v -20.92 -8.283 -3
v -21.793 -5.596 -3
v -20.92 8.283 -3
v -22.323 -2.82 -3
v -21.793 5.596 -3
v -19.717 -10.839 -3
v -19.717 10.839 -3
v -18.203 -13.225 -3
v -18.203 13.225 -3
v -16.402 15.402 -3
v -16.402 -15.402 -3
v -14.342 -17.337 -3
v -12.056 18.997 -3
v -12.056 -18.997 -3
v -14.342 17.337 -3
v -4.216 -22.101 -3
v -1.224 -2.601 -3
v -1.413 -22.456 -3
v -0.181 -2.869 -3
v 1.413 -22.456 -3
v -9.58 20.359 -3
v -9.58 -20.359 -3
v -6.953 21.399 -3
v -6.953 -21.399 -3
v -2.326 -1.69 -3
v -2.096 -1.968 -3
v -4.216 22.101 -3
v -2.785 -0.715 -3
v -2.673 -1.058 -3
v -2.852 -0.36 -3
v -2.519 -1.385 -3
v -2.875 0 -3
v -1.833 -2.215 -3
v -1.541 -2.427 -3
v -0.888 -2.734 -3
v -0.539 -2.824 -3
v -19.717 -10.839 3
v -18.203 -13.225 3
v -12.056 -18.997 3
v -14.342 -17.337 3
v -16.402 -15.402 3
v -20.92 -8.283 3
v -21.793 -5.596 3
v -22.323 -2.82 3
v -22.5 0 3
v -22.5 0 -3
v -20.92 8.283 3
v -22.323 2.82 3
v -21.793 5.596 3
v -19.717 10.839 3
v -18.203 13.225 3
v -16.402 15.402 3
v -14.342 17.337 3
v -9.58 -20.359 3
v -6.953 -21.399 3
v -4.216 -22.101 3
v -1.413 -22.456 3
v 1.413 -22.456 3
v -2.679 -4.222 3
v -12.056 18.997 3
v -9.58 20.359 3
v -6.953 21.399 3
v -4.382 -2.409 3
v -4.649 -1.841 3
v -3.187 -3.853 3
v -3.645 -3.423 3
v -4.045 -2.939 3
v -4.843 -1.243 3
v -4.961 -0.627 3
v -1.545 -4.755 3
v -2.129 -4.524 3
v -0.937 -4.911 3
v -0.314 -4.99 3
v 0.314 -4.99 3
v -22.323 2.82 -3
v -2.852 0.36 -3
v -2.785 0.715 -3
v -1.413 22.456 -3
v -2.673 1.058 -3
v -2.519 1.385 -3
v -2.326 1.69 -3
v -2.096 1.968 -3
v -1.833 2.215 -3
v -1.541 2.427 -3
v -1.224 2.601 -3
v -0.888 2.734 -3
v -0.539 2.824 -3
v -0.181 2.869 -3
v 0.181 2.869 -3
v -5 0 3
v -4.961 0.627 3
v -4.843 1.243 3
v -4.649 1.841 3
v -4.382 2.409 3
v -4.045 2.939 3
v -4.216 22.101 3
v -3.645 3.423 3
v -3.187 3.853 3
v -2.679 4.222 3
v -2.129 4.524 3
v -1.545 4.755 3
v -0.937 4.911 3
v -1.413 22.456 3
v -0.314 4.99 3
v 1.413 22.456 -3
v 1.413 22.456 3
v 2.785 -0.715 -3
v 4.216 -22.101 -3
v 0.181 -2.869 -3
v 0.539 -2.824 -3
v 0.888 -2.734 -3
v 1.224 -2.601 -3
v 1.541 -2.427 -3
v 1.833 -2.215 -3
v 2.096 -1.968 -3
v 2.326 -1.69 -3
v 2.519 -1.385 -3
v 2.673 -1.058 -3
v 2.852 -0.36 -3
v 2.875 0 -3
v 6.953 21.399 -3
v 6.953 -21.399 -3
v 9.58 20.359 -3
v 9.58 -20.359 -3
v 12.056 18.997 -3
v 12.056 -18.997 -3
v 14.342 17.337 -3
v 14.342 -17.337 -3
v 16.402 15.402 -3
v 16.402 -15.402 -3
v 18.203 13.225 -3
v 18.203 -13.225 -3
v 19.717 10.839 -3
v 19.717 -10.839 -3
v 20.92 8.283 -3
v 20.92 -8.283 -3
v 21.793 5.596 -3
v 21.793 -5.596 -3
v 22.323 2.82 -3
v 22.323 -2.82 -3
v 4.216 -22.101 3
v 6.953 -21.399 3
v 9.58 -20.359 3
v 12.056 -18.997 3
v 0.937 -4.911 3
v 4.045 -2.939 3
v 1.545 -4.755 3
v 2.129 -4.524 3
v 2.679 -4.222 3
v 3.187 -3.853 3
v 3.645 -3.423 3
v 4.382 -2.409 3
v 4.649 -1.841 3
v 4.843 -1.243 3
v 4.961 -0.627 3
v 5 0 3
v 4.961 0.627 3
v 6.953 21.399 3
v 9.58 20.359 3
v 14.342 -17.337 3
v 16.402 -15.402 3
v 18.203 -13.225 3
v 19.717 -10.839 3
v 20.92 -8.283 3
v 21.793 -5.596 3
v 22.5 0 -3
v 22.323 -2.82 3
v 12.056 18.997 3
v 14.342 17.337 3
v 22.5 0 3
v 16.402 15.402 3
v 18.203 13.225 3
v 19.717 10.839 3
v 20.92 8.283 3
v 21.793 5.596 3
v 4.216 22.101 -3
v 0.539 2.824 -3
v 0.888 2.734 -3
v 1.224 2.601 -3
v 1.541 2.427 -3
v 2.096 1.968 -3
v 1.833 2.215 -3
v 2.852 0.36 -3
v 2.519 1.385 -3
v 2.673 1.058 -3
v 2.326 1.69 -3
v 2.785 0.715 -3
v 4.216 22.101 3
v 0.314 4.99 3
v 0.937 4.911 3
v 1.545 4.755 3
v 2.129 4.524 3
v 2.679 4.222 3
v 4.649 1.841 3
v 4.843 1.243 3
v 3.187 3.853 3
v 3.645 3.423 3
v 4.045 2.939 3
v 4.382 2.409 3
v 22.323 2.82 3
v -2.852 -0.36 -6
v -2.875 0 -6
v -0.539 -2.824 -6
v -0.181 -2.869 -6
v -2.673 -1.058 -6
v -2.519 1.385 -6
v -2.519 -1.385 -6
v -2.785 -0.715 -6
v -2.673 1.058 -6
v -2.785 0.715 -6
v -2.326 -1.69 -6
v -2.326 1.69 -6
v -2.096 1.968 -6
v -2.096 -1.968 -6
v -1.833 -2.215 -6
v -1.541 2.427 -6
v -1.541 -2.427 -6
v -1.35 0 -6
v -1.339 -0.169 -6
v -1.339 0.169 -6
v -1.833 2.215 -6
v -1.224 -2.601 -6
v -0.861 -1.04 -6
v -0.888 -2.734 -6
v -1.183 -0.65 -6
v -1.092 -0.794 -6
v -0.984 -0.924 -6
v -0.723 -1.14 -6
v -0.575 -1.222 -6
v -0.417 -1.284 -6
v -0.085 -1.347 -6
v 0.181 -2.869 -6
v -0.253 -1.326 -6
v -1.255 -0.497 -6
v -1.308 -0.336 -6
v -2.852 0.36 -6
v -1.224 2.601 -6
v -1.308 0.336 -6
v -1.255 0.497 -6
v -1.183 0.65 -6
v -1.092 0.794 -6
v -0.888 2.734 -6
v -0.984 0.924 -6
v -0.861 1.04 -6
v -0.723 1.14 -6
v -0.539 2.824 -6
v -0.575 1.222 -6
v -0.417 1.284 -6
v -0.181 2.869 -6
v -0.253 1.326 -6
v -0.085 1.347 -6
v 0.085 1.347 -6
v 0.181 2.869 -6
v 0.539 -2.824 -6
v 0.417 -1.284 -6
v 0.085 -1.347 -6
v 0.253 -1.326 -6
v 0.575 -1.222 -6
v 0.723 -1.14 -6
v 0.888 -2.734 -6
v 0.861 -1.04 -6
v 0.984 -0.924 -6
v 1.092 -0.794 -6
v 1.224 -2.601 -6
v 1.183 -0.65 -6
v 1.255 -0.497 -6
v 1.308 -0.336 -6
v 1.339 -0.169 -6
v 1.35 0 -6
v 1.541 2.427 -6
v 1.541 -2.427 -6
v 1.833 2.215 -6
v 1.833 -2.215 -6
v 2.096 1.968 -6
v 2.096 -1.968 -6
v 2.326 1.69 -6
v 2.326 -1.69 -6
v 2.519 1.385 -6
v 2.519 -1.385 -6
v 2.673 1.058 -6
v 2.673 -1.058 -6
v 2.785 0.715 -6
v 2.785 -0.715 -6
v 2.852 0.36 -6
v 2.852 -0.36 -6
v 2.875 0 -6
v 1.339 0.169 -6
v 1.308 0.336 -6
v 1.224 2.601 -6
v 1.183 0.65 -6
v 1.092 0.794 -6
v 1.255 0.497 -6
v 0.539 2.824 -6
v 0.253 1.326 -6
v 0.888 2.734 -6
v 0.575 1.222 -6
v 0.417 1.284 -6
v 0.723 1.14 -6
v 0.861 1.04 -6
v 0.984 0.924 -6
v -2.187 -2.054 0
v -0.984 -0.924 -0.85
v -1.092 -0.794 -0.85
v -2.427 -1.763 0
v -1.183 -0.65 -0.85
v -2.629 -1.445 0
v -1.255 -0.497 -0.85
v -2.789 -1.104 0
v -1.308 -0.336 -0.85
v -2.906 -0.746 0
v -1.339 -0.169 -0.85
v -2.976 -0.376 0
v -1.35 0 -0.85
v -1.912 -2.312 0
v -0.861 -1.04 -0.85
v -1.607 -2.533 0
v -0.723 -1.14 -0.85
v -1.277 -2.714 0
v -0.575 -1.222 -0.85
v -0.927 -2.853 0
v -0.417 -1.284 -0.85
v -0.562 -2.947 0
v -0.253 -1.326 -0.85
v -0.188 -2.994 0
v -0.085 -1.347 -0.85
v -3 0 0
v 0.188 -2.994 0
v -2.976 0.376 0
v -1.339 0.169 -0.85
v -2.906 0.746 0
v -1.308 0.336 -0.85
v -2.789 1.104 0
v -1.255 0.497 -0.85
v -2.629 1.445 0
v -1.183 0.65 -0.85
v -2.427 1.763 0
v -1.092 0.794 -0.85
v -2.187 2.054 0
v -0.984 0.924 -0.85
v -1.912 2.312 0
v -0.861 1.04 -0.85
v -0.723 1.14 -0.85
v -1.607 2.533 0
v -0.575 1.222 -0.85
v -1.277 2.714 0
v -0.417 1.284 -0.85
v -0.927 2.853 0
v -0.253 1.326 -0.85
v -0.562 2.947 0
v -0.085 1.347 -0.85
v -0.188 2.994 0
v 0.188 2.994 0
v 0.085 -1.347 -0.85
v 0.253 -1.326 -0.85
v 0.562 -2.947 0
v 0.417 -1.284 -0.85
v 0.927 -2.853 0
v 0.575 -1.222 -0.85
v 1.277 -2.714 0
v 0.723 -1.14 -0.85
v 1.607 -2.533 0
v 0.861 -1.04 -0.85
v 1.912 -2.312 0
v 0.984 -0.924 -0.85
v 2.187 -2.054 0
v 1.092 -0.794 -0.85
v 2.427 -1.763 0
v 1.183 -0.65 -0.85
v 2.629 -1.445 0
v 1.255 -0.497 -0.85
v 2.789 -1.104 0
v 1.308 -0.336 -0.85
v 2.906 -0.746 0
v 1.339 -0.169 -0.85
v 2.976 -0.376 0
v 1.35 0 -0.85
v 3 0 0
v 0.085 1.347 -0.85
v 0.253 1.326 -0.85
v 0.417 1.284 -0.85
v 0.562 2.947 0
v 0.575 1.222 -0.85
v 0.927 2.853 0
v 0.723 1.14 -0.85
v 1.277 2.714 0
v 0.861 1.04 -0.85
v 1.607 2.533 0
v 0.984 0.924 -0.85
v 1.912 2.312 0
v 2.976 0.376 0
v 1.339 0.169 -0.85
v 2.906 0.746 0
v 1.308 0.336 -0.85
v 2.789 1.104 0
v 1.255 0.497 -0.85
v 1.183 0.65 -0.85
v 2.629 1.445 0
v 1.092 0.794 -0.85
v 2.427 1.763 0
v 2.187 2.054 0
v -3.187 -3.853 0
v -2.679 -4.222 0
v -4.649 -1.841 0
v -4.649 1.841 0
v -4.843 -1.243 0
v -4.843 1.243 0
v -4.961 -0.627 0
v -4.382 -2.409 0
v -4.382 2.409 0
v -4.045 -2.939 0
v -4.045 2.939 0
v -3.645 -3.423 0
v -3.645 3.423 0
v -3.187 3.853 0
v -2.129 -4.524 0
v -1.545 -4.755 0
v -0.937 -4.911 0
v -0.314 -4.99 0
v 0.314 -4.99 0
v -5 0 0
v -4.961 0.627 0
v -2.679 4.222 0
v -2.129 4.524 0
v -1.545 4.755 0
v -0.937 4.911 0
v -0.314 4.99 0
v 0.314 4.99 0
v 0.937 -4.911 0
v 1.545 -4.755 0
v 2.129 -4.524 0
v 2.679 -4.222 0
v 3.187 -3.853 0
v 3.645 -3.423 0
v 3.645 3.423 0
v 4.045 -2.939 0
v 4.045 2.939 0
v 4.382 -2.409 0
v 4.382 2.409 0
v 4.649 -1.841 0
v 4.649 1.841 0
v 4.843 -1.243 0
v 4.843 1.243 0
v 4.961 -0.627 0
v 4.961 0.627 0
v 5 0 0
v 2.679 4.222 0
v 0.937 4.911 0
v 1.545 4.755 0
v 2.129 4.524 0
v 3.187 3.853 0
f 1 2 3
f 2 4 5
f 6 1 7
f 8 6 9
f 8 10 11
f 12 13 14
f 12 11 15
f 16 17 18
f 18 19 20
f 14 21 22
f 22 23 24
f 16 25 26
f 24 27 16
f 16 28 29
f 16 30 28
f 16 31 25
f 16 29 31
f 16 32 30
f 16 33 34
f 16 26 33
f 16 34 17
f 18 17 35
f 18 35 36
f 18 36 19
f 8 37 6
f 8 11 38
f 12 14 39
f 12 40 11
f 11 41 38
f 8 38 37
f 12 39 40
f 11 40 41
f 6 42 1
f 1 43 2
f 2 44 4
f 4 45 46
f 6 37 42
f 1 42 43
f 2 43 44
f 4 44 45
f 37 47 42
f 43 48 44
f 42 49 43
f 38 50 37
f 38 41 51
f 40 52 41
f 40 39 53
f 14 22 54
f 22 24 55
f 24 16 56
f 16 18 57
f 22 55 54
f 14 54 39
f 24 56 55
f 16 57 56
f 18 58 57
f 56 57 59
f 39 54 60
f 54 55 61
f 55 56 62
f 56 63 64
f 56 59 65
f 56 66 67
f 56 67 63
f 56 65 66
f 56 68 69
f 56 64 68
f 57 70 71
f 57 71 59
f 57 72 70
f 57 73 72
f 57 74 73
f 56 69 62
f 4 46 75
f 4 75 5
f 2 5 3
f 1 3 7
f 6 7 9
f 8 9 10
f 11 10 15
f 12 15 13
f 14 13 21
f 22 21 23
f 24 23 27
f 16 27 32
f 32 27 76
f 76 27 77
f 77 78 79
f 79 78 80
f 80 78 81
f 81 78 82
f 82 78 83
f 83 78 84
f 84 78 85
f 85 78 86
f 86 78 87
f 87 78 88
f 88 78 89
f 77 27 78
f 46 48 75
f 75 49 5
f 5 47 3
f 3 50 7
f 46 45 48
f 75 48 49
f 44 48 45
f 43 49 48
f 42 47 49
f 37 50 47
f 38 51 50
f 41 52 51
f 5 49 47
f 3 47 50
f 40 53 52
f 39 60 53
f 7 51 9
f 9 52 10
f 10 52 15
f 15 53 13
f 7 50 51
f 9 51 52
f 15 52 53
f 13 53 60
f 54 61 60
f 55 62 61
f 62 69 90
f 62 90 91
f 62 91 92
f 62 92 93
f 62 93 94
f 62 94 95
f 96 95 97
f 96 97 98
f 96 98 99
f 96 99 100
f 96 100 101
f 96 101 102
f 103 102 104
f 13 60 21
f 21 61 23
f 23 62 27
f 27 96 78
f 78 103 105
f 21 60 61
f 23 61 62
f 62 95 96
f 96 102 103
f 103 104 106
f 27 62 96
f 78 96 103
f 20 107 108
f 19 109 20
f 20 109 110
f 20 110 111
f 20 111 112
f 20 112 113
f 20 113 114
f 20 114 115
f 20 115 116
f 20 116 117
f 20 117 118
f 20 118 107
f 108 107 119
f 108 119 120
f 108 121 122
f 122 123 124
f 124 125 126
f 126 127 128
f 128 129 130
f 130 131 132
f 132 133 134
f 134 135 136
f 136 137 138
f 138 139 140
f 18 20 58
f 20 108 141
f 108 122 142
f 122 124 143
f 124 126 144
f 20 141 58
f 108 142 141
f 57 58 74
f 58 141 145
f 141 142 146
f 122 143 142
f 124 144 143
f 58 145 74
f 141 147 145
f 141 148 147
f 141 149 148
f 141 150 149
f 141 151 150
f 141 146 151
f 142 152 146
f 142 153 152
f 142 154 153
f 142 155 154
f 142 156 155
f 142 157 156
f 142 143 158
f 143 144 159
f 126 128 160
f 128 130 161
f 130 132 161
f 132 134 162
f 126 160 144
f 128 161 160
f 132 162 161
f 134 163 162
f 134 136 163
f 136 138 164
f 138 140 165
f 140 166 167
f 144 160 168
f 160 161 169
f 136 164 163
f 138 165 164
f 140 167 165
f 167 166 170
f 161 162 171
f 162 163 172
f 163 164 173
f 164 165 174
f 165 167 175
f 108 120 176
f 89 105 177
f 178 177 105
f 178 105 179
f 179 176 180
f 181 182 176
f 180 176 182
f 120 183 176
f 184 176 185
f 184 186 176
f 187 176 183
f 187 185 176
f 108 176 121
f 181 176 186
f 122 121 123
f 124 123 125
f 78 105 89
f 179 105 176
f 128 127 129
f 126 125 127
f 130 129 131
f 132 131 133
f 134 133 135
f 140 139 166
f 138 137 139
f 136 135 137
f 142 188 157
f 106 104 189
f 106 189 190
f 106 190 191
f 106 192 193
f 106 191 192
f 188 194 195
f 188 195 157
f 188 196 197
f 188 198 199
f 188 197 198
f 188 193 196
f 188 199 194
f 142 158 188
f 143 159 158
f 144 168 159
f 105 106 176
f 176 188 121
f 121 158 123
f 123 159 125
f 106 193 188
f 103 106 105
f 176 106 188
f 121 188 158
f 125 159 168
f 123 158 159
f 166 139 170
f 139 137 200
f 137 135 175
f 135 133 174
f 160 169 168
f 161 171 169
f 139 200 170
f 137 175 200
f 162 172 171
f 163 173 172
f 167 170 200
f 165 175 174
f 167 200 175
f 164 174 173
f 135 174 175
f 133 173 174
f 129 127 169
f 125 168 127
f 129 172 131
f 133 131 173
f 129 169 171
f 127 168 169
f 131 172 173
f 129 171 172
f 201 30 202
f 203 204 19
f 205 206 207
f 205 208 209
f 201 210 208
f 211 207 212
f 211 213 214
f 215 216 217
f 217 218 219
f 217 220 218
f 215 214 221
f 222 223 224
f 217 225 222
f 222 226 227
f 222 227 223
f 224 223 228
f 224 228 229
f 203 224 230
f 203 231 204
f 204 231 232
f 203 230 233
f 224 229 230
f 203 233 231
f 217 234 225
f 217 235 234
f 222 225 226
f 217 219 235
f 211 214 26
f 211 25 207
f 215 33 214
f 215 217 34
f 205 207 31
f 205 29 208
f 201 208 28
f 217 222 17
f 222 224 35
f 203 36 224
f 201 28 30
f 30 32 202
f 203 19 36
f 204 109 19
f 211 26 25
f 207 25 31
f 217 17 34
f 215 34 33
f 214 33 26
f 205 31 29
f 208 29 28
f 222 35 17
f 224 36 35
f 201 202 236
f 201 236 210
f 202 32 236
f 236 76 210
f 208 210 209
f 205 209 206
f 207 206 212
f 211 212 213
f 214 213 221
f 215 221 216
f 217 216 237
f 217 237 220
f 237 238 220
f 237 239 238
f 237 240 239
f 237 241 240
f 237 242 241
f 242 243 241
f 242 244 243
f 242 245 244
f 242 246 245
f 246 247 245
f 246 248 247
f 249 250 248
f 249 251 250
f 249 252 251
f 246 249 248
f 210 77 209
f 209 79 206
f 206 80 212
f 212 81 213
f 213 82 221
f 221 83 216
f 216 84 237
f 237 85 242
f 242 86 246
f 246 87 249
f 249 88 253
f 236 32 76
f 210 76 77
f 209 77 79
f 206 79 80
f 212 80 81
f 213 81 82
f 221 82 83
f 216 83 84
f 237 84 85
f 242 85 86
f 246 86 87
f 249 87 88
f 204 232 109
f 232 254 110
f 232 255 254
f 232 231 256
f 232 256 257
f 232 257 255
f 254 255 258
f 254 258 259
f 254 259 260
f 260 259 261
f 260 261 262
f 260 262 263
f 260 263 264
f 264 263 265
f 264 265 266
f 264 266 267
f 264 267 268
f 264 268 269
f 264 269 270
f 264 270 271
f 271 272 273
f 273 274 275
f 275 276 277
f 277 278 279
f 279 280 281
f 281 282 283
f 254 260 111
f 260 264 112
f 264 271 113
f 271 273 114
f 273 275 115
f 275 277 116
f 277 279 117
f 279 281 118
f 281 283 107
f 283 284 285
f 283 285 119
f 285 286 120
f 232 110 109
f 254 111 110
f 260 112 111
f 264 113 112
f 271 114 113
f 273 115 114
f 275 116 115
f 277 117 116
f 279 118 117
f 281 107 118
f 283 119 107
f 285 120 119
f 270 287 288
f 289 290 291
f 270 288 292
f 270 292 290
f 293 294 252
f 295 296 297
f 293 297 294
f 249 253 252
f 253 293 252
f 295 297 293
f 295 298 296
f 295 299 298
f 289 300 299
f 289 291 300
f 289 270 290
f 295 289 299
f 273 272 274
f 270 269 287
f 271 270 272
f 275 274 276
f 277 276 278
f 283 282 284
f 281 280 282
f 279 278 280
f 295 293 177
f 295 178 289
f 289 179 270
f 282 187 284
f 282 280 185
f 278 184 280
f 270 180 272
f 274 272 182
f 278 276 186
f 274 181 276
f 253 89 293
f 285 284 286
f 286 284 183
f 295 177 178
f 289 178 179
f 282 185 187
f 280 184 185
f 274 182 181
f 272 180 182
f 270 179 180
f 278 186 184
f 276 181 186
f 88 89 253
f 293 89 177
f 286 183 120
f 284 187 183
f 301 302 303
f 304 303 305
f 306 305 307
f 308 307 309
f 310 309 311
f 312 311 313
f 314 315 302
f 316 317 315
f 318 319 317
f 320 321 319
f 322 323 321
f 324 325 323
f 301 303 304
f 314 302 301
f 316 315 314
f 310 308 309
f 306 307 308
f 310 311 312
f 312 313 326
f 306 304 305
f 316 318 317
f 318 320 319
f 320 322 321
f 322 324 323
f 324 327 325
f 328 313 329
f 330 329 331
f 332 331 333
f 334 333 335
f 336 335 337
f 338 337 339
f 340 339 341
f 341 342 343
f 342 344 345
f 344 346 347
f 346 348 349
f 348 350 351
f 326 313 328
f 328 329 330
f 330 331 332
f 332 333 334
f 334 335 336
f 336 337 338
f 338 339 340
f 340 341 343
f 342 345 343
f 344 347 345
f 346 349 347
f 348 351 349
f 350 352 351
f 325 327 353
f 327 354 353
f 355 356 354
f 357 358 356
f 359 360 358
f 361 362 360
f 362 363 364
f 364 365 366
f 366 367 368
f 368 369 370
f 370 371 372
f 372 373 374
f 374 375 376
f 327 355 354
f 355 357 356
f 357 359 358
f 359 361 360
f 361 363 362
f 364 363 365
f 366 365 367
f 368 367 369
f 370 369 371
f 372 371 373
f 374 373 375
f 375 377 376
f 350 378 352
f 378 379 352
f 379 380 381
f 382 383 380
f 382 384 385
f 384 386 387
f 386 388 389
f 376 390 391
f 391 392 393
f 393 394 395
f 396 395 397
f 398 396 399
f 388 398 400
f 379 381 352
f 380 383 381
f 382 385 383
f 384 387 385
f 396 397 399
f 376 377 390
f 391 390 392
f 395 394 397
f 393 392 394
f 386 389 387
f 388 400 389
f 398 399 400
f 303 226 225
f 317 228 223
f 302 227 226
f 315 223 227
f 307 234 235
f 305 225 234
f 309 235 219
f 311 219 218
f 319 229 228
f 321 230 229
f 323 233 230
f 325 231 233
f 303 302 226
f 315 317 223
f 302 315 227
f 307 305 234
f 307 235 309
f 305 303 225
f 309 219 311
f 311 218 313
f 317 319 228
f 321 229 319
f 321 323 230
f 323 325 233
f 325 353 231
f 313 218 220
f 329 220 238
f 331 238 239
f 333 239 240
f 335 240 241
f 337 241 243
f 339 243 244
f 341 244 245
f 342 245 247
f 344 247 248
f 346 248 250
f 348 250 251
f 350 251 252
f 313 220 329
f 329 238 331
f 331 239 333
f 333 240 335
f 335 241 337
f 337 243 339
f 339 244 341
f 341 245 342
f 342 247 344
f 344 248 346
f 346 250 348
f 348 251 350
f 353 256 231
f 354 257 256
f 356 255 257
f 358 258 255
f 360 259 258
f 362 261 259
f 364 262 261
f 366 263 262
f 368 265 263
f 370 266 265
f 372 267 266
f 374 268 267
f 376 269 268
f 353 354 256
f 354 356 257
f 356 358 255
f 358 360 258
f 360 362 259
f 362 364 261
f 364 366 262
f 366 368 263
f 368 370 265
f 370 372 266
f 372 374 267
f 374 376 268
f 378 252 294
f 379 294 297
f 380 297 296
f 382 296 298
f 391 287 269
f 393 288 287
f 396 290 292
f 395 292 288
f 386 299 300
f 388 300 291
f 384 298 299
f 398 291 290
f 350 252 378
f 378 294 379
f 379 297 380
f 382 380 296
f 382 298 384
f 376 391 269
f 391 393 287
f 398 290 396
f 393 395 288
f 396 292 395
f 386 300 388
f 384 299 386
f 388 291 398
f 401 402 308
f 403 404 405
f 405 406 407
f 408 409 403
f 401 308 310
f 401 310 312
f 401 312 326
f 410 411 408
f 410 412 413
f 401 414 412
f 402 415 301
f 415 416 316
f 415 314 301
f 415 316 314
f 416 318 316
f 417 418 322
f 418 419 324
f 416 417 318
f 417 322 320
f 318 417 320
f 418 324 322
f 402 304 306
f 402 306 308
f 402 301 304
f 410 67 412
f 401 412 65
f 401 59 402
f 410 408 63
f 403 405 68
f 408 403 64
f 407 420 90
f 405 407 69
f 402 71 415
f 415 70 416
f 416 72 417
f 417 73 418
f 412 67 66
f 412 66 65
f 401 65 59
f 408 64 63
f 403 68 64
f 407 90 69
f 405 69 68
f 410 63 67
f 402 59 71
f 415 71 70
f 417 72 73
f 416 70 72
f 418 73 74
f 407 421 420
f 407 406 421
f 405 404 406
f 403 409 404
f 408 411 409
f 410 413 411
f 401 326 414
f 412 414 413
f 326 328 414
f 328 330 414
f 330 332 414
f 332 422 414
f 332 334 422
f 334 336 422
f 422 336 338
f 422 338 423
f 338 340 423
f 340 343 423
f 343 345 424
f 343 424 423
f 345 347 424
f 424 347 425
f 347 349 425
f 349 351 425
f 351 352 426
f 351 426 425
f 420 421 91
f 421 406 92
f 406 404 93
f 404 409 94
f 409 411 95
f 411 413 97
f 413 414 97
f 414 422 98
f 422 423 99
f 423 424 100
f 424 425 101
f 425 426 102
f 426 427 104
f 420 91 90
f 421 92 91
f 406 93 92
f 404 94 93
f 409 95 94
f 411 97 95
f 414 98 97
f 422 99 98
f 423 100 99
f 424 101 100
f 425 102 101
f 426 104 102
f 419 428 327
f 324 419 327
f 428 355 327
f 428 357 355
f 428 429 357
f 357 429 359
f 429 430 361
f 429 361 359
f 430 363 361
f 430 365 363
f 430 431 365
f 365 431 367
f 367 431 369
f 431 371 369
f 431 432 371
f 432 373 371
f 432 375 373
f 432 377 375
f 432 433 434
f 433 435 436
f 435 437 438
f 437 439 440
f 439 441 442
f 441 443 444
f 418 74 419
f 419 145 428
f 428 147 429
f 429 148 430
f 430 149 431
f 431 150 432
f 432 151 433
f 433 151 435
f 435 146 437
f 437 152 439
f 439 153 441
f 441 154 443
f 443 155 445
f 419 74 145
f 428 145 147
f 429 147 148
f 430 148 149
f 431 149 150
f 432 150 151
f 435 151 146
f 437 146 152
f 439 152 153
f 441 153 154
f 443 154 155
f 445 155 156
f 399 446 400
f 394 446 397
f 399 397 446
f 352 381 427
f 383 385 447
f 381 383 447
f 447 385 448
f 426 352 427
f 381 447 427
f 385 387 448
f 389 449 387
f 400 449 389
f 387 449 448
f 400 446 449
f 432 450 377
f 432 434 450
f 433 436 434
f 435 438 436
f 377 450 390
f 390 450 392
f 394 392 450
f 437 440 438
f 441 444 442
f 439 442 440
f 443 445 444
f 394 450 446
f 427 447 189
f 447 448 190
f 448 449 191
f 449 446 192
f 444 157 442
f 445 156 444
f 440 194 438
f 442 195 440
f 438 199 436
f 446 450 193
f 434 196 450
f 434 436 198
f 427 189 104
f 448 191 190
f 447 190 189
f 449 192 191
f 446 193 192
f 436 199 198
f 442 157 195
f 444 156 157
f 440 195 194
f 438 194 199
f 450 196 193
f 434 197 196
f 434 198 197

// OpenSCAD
$fn = 50;

difference() {
	union() {
		translate(v = [0, 0, -3.0]) {
			cylinder(h = 6, r = 22.5);
		}
		#translate(v = [0, 0, -6.0]) {
			cylinder(h = 6, r = 2.875);
		}
	}
	union() {
		translate(v = [0, 0, 0]) {
			rotate(a = [0, 0, 0]) {
				difference() {
					union() {
						translate(v = [0, 0, -6.0]) {
							cylinder(h = 6, r = 1.0);
						}
						translate(v = [0, 0, -0.85]) {
							cylinder(h = 0.85, r1 = 1.35, r2 = 3.0);
						}
						translate(v = [0, 0, -6.0]) {
							cylinder(h = 6, r = 1.35);
						}
						translate(v = [0, 0, -6.0]) {
							cylinder(h = 6, r = 1.0);
						}
					}
					union();
				}
			}
		}
		#cylinder(h = 3, r = 5.0);
	}
}
